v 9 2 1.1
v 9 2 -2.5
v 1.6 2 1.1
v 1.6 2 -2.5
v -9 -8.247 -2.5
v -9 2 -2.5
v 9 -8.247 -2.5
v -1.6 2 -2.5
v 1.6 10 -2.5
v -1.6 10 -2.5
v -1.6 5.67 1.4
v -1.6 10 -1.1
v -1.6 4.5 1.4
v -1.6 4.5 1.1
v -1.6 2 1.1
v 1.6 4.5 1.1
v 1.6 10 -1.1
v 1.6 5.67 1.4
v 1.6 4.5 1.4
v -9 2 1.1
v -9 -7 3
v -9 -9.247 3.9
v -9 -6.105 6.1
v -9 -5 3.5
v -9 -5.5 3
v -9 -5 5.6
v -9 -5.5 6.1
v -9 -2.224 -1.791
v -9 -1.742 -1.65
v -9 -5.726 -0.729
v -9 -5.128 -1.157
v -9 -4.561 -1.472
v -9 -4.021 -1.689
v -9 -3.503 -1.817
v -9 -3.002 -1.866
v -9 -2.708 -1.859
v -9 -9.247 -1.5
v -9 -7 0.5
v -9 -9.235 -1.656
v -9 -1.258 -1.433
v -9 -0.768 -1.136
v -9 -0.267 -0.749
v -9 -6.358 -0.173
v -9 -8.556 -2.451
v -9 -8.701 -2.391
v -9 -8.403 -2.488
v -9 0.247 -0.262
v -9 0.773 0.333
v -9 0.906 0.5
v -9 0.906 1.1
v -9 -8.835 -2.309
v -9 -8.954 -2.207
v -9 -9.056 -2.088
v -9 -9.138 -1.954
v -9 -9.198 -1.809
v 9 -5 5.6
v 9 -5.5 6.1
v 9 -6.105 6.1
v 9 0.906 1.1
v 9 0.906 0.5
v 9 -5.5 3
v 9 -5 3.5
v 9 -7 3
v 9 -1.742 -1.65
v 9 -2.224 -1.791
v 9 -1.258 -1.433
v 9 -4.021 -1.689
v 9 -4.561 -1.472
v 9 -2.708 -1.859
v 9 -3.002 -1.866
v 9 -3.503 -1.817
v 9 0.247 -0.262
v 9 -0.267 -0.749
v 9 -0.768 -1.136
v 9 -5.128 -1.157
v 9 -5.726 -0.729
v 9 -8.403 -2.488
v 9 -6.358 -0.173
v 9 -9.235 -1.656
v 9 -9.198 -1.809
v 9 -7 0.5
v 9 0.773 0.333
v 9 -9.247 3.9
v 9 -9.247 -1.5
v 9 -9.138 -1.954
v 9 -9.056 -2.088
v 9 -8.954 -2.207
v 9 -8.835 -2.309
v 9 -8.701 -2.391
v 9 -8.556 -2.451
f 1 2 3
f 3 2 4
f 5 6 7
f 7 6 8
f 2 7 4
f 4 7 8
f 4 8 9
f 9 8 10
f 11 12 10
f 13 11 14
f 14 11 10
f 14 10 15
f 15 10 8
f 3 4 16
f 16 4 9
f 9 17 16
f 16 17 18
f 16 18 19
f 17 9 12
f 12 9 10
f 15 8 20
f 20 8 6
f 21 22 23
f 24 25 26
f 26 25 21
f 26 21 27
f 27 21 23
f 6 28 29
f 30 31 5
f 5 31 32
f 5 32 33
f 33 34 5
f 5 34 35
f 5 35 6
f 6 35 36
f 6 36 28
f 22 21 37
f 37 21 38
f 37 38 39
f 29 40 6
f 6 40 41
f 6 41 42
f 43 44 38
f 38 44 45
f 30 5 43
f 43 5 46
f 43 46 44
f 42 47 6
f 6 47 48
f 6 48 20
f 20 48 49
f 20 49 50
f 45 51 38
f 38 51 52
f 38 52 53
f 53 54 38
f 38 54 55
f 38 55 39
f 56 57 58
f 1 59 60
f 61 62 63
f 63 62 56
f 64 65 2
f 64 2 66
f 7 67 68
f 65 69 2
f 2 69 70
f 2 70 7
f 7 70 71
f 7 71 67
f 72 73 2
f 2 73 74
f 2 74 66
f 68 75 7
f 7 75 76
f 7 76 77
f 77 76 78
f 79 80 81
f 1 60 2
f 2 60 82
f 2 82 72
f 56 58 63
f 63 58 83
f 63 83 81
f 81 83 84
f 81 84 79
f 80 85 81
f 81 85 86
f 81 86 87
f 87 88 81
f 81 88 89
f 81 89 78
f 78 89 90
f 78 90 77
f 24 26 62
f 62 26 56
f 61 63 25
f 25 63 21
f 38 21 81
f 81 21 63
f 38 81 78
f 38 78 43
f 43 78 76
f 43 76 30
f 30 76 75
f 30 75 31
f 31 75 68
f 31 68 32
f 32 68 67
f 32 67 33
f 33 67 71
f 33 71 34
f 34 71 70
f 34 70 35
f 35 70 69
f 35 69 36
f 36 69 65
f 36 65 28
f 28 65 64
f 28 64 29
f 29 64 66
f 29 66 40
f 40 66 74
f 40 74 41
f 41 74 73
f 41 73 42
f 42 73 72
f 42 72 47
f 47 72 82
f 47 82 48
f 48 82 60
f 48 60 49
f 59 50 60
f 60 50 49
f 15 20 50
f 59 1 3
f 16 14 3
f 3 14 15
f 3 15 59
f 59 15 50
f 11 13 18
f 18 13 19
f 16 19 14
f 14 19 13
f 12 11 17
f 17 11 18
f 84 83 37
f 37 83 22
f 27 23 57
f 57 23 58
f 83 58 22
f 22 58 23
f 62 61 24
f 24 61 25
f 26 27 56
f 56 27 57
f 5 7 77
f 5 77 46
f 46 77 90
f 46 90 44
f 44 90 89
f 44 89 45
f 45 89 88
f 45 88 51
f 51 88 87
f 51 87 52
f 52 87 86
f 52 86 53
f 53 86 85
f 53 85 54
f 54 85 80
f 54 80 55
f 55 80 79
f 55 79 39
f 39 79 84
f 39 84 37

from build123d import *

# Parameters (mm, degrees)
SKETCH1_W           = 5
SKETCH1_H           = 5
BOSS_EXTRUDE1_DEPTH = 2
SKETCH2_W           = 3.2
SKETCH2_H           = 3
BOSS_EXTRUDE2_DEPTH = 5
SKETCH3_W           = 3.2
SKETCH3_H           = 3.6
BOSS_EXTRUDE3_DEPTH = 3
CUT_EXTRUDE1_DEPTH  = 12.093241186
SKETCH6_W           = 5
SKETCH6_H           = 2
CUT_EXTRUDE2_DEPTH  = 12.456439237
SKETCH7_W           = 18
SKETCH7_H           = 4
BOSS_EXTRUDE5_DEPTH = 13
SKETCH8_W           = 18
SKETCH8_H           = 6
BOSS_EXTRUDE6_DEPTH = 4
SKETCH9_W           = 1.5
SKETCH9_H           = 2
CUT_EXTRUDE4_DEPTH  = 22.800229357
SKETCH10_W          = 1
SKETCH10_H          = 9
CUT_EXTRUDE5_DEPTH  = 22.800229357
CUT_EXTRUDE6_DEPTH  = 22.800229357
BOSS_EXTRUDE7_DEPTH = 0.6
SKETCH13_W          = 3.9
SKETCH13_H          = 5.5
BOSS_EXTRUDE8_DEPTH = 3.2
CHAMFER2_SIZE       = 2.5
CHAMFER2_SIZE2      = 4.330127019
SKETCH14_W          = 8
SKETCH14_H          = 1.75299242
CUT_EXTRUDE7_DEPTH  = 22.800229515
SKETCH16_W          = 18
SKETCH16_H          = 4.24700758
BOSS_EXTRUDE9_DEPTH = 0.6
CHAMFER4_SIZE       = 2.2
CHAMFER4_SIZE2      = 3.141925615
CHAMFER5_SIZE       = 0.5
FILLET1_R           = 1


with BuildPart() as part:
    # Sketch1 → Boss-Extrude1 (new body)
    with BuildSketch(Plane(origin=(0, 0, 0), x_dir=(1, 0, 0), z_dir=(0, 1, 0))):
        Rectangle(SKETCH1_W, SKETCH1_H)
    extrude(amount=BOSS_EXTRUDE1_DEPTH)

    # Sketch2 → Boss-Extrude2 (add)
    with BuildSketch(Plane(origin=(0, 2, 0), x_dir=(1, 0, 0), z_dir=(0, 1, 0))):
        with Locations((0, 1)):
            Rectangle(SKETCH2_W, SKETCH2_H)
    extrude(amount=BOSS_EXTRUDE2_DEPTH)

    # Sketch3 → Boss-Extrude3 (add)
    with BuildSketch(Plane(origin=(0, 7, 0), x_dir=(1, 0, 0), z_dir=(0, 1, 0))):
        with Locations((0, 0.7)):
            Rectangle(SKETCH3_W, SKETCH3_H)
    extrude(amount=BOSS_EXTRUDE3_DEPTH)

    # Sketch4 → Cut-Extrude1 (cut, through all)
    with BuildSketch(Plane(origin=(1.6, 0, 0), x_dir=(0, 0, -1), z_dir=(1, 0, 0))):
        Polygon((-1.1, 7), (0.75, 10), (-1.1, 10), align=None)
    extrude(amount=-CUT_EXTRUDE1_DEPTH, mode=Mode.SUBTRACT)

    # Sketch6 → Cut-Extrude2 (cut, through all)
    with BuildSketch(Plane.XY.offset(2.5)):
        with Locations((0, 1)):
            Rectangle(SKETCH6_W, SKETCH6_H)
    extrude(amount=-CUT_EXTRUDE2_DEPTH, mode=Mode.SUBTRACT)

    # Sketch7 → Boss-Extrude5 (add)
    with BuildSketch(Plane.XZ.offset(-2)):
        with Locations((0, -0.5)):
            Rectangle(SKETCH7_W, SKETCH7_H)
    extrude(amount=BOSS_EXTRUDE5_DEPTH)

    # Sketch8 → Boss-Extrude6 (add)
    with BuildSketch(Plane.XY.offset(1.5)):
        with Locations((0, -8)):
            Rectangle(SKETCH8_W, SKETCH8_H)
    extrude(amount=BOSS_EXTRUDE6_DEPTH)

    # Sketch9 → Cut-Extrude4 (cut, through all)
    with BuildSketch(Plane(origin=(9, 0, 0), x_dir=(0, 0, -1), z_dir=(1, 0, 0))):
        with Locations((-2.25, -6)):
            Rectangle(SKETCH9_W, SKETCH9_H)
    extrude(amount=-CUT_EXTRUDE4_DEPTH, mode=Mode.SUBTRACT)

    # Sketch10 → Cut-Extrude5 (cut, through all)
    with BuildSketch(Plane(origin=(9, 0, 0), x_dir=(0, 0, -1), z_dir=(1, 0, 0))):
        with Locations((-1, -2.5)):
            Rectangle(SKETCH10_W, SKETCH10_H)
    extrude(amount=-CUT_EXTRUDE5_DEPTH, mode=Mode.SUBTRACT)

    # Sketch11 → Cut-Extrude6 (cut, through all)
    with BuildSketch(Plane(origin=(9, 0, 0), x_dir=(0, 0, -1), z_dir=(1, 0, 0))):
        with BuildLine():
            Line((-0.5, 0.906362555), (-0.5, -7))
            add(Edge.make_bspline(
                [(-0.5, 0.906362555), (4.232995097, -2.809658902), (-0.5, -7)],
                knots=[0, 0, 0, 1, 1, 1], degree=2))
        make_face()
    extrude(amount=-CUT_EXTRUDE6_DEPTH, mode=Mode.SUBTRACT)

    # Sketch12 → Boss-Extrude7 (add)
    with BuildSketch(Plane.XY.offset(0.5)):
        Polygon((-9, 2), (-9, 0.906362555), (9, 0.906362555), (9, 2), (1.6, 2), (1.6, 7), (-1.6, 7), (-1.6, 2), align=None)
    extrude(amount=BOSS_EXTRUDE7_DEPTH)

    # Sketch13 → Boss-Extrude8 (add)
    with BuildSketch(Plane.ZY.offset(1.6)):
        with Locations((-0.55, 7.25)):
            Rectangle(SKETCH13_W, SKETCH13_H)
    extrude(amount=-BOSS_EXTRUDE8_DEPTH)

    # Chamfer2
    chamfer2_edges = [part.edges().sort_by_distance(p)[0] for p in [
        (0, 10, 1.4),
    ]]
    chamfer2_side = [part.faces().sort_by_distance(p)[0] for p in [
        (0, 10, -0.55),
    ]]
    chamfer(chamfer2_edges, length=CHAMFER2_SIZE, length2=CHAMFER2_SIZE2, reference=chamfer2_side[0])

    # Sketch14 → Cut-Extrude7 (cut, through all)
    with BuildSketch(Plane(origin=(9, 0, 0), x_dir=(0, 0, -1), z_dir=(1, 0, 0))):
        with Locations((-1.5, -10.12350379)):
            Rectangle(SKETCH14_W, SKETCH14_H)
    extrude(amount=-CUT_EXTRUDE7_DEPTH, mode=Mode.SUBTRACT)

    # Sketch16 → Boss-Extrude9 (add)
    with BuildSketch(Plane.XY.offset(5.5)):
        with Locations((0, -7.12350379)):
            Rectangle(SKETCH16_W, SKETCH16_H)
    extrude(amount=BOSS_EXTRUDE9_DEPTH)

    # Chamfer4
    chamfer4_edges = [part.edges().sort_by_distance(p)[0] for p in [
        (0, -9.24700758, 6.1),
    ]]
    chamfer4_side = [part.faces().sort_by_distance(p)[0] for p in [
        (0, -9.24700758, 1.8),
    ]]
    chamfer(chamfer4_edges, length=CHAMFER4_SIZE, length2=CHAMFER4_SIZE2, reference=chamfer4_side[0])

    # Chamfer5
    chamfer5_edges = [part.edges().sort_by_distance(p)[0] for p in [
        (0, -5, 3),
        (0, -5, 6.1),
    ]]
    chamfer(chamfer5_edges, length=CHAMFER5_SIZE)

    # Fillet1
    fillet1_edges = [part.edges().sort_by_distance(p)[0] for p in [
        (0, -9.24700758, -2.5),
    ]]
    fillet(fillet1_edges, radius=FILLET1_R)


solid = part.part
